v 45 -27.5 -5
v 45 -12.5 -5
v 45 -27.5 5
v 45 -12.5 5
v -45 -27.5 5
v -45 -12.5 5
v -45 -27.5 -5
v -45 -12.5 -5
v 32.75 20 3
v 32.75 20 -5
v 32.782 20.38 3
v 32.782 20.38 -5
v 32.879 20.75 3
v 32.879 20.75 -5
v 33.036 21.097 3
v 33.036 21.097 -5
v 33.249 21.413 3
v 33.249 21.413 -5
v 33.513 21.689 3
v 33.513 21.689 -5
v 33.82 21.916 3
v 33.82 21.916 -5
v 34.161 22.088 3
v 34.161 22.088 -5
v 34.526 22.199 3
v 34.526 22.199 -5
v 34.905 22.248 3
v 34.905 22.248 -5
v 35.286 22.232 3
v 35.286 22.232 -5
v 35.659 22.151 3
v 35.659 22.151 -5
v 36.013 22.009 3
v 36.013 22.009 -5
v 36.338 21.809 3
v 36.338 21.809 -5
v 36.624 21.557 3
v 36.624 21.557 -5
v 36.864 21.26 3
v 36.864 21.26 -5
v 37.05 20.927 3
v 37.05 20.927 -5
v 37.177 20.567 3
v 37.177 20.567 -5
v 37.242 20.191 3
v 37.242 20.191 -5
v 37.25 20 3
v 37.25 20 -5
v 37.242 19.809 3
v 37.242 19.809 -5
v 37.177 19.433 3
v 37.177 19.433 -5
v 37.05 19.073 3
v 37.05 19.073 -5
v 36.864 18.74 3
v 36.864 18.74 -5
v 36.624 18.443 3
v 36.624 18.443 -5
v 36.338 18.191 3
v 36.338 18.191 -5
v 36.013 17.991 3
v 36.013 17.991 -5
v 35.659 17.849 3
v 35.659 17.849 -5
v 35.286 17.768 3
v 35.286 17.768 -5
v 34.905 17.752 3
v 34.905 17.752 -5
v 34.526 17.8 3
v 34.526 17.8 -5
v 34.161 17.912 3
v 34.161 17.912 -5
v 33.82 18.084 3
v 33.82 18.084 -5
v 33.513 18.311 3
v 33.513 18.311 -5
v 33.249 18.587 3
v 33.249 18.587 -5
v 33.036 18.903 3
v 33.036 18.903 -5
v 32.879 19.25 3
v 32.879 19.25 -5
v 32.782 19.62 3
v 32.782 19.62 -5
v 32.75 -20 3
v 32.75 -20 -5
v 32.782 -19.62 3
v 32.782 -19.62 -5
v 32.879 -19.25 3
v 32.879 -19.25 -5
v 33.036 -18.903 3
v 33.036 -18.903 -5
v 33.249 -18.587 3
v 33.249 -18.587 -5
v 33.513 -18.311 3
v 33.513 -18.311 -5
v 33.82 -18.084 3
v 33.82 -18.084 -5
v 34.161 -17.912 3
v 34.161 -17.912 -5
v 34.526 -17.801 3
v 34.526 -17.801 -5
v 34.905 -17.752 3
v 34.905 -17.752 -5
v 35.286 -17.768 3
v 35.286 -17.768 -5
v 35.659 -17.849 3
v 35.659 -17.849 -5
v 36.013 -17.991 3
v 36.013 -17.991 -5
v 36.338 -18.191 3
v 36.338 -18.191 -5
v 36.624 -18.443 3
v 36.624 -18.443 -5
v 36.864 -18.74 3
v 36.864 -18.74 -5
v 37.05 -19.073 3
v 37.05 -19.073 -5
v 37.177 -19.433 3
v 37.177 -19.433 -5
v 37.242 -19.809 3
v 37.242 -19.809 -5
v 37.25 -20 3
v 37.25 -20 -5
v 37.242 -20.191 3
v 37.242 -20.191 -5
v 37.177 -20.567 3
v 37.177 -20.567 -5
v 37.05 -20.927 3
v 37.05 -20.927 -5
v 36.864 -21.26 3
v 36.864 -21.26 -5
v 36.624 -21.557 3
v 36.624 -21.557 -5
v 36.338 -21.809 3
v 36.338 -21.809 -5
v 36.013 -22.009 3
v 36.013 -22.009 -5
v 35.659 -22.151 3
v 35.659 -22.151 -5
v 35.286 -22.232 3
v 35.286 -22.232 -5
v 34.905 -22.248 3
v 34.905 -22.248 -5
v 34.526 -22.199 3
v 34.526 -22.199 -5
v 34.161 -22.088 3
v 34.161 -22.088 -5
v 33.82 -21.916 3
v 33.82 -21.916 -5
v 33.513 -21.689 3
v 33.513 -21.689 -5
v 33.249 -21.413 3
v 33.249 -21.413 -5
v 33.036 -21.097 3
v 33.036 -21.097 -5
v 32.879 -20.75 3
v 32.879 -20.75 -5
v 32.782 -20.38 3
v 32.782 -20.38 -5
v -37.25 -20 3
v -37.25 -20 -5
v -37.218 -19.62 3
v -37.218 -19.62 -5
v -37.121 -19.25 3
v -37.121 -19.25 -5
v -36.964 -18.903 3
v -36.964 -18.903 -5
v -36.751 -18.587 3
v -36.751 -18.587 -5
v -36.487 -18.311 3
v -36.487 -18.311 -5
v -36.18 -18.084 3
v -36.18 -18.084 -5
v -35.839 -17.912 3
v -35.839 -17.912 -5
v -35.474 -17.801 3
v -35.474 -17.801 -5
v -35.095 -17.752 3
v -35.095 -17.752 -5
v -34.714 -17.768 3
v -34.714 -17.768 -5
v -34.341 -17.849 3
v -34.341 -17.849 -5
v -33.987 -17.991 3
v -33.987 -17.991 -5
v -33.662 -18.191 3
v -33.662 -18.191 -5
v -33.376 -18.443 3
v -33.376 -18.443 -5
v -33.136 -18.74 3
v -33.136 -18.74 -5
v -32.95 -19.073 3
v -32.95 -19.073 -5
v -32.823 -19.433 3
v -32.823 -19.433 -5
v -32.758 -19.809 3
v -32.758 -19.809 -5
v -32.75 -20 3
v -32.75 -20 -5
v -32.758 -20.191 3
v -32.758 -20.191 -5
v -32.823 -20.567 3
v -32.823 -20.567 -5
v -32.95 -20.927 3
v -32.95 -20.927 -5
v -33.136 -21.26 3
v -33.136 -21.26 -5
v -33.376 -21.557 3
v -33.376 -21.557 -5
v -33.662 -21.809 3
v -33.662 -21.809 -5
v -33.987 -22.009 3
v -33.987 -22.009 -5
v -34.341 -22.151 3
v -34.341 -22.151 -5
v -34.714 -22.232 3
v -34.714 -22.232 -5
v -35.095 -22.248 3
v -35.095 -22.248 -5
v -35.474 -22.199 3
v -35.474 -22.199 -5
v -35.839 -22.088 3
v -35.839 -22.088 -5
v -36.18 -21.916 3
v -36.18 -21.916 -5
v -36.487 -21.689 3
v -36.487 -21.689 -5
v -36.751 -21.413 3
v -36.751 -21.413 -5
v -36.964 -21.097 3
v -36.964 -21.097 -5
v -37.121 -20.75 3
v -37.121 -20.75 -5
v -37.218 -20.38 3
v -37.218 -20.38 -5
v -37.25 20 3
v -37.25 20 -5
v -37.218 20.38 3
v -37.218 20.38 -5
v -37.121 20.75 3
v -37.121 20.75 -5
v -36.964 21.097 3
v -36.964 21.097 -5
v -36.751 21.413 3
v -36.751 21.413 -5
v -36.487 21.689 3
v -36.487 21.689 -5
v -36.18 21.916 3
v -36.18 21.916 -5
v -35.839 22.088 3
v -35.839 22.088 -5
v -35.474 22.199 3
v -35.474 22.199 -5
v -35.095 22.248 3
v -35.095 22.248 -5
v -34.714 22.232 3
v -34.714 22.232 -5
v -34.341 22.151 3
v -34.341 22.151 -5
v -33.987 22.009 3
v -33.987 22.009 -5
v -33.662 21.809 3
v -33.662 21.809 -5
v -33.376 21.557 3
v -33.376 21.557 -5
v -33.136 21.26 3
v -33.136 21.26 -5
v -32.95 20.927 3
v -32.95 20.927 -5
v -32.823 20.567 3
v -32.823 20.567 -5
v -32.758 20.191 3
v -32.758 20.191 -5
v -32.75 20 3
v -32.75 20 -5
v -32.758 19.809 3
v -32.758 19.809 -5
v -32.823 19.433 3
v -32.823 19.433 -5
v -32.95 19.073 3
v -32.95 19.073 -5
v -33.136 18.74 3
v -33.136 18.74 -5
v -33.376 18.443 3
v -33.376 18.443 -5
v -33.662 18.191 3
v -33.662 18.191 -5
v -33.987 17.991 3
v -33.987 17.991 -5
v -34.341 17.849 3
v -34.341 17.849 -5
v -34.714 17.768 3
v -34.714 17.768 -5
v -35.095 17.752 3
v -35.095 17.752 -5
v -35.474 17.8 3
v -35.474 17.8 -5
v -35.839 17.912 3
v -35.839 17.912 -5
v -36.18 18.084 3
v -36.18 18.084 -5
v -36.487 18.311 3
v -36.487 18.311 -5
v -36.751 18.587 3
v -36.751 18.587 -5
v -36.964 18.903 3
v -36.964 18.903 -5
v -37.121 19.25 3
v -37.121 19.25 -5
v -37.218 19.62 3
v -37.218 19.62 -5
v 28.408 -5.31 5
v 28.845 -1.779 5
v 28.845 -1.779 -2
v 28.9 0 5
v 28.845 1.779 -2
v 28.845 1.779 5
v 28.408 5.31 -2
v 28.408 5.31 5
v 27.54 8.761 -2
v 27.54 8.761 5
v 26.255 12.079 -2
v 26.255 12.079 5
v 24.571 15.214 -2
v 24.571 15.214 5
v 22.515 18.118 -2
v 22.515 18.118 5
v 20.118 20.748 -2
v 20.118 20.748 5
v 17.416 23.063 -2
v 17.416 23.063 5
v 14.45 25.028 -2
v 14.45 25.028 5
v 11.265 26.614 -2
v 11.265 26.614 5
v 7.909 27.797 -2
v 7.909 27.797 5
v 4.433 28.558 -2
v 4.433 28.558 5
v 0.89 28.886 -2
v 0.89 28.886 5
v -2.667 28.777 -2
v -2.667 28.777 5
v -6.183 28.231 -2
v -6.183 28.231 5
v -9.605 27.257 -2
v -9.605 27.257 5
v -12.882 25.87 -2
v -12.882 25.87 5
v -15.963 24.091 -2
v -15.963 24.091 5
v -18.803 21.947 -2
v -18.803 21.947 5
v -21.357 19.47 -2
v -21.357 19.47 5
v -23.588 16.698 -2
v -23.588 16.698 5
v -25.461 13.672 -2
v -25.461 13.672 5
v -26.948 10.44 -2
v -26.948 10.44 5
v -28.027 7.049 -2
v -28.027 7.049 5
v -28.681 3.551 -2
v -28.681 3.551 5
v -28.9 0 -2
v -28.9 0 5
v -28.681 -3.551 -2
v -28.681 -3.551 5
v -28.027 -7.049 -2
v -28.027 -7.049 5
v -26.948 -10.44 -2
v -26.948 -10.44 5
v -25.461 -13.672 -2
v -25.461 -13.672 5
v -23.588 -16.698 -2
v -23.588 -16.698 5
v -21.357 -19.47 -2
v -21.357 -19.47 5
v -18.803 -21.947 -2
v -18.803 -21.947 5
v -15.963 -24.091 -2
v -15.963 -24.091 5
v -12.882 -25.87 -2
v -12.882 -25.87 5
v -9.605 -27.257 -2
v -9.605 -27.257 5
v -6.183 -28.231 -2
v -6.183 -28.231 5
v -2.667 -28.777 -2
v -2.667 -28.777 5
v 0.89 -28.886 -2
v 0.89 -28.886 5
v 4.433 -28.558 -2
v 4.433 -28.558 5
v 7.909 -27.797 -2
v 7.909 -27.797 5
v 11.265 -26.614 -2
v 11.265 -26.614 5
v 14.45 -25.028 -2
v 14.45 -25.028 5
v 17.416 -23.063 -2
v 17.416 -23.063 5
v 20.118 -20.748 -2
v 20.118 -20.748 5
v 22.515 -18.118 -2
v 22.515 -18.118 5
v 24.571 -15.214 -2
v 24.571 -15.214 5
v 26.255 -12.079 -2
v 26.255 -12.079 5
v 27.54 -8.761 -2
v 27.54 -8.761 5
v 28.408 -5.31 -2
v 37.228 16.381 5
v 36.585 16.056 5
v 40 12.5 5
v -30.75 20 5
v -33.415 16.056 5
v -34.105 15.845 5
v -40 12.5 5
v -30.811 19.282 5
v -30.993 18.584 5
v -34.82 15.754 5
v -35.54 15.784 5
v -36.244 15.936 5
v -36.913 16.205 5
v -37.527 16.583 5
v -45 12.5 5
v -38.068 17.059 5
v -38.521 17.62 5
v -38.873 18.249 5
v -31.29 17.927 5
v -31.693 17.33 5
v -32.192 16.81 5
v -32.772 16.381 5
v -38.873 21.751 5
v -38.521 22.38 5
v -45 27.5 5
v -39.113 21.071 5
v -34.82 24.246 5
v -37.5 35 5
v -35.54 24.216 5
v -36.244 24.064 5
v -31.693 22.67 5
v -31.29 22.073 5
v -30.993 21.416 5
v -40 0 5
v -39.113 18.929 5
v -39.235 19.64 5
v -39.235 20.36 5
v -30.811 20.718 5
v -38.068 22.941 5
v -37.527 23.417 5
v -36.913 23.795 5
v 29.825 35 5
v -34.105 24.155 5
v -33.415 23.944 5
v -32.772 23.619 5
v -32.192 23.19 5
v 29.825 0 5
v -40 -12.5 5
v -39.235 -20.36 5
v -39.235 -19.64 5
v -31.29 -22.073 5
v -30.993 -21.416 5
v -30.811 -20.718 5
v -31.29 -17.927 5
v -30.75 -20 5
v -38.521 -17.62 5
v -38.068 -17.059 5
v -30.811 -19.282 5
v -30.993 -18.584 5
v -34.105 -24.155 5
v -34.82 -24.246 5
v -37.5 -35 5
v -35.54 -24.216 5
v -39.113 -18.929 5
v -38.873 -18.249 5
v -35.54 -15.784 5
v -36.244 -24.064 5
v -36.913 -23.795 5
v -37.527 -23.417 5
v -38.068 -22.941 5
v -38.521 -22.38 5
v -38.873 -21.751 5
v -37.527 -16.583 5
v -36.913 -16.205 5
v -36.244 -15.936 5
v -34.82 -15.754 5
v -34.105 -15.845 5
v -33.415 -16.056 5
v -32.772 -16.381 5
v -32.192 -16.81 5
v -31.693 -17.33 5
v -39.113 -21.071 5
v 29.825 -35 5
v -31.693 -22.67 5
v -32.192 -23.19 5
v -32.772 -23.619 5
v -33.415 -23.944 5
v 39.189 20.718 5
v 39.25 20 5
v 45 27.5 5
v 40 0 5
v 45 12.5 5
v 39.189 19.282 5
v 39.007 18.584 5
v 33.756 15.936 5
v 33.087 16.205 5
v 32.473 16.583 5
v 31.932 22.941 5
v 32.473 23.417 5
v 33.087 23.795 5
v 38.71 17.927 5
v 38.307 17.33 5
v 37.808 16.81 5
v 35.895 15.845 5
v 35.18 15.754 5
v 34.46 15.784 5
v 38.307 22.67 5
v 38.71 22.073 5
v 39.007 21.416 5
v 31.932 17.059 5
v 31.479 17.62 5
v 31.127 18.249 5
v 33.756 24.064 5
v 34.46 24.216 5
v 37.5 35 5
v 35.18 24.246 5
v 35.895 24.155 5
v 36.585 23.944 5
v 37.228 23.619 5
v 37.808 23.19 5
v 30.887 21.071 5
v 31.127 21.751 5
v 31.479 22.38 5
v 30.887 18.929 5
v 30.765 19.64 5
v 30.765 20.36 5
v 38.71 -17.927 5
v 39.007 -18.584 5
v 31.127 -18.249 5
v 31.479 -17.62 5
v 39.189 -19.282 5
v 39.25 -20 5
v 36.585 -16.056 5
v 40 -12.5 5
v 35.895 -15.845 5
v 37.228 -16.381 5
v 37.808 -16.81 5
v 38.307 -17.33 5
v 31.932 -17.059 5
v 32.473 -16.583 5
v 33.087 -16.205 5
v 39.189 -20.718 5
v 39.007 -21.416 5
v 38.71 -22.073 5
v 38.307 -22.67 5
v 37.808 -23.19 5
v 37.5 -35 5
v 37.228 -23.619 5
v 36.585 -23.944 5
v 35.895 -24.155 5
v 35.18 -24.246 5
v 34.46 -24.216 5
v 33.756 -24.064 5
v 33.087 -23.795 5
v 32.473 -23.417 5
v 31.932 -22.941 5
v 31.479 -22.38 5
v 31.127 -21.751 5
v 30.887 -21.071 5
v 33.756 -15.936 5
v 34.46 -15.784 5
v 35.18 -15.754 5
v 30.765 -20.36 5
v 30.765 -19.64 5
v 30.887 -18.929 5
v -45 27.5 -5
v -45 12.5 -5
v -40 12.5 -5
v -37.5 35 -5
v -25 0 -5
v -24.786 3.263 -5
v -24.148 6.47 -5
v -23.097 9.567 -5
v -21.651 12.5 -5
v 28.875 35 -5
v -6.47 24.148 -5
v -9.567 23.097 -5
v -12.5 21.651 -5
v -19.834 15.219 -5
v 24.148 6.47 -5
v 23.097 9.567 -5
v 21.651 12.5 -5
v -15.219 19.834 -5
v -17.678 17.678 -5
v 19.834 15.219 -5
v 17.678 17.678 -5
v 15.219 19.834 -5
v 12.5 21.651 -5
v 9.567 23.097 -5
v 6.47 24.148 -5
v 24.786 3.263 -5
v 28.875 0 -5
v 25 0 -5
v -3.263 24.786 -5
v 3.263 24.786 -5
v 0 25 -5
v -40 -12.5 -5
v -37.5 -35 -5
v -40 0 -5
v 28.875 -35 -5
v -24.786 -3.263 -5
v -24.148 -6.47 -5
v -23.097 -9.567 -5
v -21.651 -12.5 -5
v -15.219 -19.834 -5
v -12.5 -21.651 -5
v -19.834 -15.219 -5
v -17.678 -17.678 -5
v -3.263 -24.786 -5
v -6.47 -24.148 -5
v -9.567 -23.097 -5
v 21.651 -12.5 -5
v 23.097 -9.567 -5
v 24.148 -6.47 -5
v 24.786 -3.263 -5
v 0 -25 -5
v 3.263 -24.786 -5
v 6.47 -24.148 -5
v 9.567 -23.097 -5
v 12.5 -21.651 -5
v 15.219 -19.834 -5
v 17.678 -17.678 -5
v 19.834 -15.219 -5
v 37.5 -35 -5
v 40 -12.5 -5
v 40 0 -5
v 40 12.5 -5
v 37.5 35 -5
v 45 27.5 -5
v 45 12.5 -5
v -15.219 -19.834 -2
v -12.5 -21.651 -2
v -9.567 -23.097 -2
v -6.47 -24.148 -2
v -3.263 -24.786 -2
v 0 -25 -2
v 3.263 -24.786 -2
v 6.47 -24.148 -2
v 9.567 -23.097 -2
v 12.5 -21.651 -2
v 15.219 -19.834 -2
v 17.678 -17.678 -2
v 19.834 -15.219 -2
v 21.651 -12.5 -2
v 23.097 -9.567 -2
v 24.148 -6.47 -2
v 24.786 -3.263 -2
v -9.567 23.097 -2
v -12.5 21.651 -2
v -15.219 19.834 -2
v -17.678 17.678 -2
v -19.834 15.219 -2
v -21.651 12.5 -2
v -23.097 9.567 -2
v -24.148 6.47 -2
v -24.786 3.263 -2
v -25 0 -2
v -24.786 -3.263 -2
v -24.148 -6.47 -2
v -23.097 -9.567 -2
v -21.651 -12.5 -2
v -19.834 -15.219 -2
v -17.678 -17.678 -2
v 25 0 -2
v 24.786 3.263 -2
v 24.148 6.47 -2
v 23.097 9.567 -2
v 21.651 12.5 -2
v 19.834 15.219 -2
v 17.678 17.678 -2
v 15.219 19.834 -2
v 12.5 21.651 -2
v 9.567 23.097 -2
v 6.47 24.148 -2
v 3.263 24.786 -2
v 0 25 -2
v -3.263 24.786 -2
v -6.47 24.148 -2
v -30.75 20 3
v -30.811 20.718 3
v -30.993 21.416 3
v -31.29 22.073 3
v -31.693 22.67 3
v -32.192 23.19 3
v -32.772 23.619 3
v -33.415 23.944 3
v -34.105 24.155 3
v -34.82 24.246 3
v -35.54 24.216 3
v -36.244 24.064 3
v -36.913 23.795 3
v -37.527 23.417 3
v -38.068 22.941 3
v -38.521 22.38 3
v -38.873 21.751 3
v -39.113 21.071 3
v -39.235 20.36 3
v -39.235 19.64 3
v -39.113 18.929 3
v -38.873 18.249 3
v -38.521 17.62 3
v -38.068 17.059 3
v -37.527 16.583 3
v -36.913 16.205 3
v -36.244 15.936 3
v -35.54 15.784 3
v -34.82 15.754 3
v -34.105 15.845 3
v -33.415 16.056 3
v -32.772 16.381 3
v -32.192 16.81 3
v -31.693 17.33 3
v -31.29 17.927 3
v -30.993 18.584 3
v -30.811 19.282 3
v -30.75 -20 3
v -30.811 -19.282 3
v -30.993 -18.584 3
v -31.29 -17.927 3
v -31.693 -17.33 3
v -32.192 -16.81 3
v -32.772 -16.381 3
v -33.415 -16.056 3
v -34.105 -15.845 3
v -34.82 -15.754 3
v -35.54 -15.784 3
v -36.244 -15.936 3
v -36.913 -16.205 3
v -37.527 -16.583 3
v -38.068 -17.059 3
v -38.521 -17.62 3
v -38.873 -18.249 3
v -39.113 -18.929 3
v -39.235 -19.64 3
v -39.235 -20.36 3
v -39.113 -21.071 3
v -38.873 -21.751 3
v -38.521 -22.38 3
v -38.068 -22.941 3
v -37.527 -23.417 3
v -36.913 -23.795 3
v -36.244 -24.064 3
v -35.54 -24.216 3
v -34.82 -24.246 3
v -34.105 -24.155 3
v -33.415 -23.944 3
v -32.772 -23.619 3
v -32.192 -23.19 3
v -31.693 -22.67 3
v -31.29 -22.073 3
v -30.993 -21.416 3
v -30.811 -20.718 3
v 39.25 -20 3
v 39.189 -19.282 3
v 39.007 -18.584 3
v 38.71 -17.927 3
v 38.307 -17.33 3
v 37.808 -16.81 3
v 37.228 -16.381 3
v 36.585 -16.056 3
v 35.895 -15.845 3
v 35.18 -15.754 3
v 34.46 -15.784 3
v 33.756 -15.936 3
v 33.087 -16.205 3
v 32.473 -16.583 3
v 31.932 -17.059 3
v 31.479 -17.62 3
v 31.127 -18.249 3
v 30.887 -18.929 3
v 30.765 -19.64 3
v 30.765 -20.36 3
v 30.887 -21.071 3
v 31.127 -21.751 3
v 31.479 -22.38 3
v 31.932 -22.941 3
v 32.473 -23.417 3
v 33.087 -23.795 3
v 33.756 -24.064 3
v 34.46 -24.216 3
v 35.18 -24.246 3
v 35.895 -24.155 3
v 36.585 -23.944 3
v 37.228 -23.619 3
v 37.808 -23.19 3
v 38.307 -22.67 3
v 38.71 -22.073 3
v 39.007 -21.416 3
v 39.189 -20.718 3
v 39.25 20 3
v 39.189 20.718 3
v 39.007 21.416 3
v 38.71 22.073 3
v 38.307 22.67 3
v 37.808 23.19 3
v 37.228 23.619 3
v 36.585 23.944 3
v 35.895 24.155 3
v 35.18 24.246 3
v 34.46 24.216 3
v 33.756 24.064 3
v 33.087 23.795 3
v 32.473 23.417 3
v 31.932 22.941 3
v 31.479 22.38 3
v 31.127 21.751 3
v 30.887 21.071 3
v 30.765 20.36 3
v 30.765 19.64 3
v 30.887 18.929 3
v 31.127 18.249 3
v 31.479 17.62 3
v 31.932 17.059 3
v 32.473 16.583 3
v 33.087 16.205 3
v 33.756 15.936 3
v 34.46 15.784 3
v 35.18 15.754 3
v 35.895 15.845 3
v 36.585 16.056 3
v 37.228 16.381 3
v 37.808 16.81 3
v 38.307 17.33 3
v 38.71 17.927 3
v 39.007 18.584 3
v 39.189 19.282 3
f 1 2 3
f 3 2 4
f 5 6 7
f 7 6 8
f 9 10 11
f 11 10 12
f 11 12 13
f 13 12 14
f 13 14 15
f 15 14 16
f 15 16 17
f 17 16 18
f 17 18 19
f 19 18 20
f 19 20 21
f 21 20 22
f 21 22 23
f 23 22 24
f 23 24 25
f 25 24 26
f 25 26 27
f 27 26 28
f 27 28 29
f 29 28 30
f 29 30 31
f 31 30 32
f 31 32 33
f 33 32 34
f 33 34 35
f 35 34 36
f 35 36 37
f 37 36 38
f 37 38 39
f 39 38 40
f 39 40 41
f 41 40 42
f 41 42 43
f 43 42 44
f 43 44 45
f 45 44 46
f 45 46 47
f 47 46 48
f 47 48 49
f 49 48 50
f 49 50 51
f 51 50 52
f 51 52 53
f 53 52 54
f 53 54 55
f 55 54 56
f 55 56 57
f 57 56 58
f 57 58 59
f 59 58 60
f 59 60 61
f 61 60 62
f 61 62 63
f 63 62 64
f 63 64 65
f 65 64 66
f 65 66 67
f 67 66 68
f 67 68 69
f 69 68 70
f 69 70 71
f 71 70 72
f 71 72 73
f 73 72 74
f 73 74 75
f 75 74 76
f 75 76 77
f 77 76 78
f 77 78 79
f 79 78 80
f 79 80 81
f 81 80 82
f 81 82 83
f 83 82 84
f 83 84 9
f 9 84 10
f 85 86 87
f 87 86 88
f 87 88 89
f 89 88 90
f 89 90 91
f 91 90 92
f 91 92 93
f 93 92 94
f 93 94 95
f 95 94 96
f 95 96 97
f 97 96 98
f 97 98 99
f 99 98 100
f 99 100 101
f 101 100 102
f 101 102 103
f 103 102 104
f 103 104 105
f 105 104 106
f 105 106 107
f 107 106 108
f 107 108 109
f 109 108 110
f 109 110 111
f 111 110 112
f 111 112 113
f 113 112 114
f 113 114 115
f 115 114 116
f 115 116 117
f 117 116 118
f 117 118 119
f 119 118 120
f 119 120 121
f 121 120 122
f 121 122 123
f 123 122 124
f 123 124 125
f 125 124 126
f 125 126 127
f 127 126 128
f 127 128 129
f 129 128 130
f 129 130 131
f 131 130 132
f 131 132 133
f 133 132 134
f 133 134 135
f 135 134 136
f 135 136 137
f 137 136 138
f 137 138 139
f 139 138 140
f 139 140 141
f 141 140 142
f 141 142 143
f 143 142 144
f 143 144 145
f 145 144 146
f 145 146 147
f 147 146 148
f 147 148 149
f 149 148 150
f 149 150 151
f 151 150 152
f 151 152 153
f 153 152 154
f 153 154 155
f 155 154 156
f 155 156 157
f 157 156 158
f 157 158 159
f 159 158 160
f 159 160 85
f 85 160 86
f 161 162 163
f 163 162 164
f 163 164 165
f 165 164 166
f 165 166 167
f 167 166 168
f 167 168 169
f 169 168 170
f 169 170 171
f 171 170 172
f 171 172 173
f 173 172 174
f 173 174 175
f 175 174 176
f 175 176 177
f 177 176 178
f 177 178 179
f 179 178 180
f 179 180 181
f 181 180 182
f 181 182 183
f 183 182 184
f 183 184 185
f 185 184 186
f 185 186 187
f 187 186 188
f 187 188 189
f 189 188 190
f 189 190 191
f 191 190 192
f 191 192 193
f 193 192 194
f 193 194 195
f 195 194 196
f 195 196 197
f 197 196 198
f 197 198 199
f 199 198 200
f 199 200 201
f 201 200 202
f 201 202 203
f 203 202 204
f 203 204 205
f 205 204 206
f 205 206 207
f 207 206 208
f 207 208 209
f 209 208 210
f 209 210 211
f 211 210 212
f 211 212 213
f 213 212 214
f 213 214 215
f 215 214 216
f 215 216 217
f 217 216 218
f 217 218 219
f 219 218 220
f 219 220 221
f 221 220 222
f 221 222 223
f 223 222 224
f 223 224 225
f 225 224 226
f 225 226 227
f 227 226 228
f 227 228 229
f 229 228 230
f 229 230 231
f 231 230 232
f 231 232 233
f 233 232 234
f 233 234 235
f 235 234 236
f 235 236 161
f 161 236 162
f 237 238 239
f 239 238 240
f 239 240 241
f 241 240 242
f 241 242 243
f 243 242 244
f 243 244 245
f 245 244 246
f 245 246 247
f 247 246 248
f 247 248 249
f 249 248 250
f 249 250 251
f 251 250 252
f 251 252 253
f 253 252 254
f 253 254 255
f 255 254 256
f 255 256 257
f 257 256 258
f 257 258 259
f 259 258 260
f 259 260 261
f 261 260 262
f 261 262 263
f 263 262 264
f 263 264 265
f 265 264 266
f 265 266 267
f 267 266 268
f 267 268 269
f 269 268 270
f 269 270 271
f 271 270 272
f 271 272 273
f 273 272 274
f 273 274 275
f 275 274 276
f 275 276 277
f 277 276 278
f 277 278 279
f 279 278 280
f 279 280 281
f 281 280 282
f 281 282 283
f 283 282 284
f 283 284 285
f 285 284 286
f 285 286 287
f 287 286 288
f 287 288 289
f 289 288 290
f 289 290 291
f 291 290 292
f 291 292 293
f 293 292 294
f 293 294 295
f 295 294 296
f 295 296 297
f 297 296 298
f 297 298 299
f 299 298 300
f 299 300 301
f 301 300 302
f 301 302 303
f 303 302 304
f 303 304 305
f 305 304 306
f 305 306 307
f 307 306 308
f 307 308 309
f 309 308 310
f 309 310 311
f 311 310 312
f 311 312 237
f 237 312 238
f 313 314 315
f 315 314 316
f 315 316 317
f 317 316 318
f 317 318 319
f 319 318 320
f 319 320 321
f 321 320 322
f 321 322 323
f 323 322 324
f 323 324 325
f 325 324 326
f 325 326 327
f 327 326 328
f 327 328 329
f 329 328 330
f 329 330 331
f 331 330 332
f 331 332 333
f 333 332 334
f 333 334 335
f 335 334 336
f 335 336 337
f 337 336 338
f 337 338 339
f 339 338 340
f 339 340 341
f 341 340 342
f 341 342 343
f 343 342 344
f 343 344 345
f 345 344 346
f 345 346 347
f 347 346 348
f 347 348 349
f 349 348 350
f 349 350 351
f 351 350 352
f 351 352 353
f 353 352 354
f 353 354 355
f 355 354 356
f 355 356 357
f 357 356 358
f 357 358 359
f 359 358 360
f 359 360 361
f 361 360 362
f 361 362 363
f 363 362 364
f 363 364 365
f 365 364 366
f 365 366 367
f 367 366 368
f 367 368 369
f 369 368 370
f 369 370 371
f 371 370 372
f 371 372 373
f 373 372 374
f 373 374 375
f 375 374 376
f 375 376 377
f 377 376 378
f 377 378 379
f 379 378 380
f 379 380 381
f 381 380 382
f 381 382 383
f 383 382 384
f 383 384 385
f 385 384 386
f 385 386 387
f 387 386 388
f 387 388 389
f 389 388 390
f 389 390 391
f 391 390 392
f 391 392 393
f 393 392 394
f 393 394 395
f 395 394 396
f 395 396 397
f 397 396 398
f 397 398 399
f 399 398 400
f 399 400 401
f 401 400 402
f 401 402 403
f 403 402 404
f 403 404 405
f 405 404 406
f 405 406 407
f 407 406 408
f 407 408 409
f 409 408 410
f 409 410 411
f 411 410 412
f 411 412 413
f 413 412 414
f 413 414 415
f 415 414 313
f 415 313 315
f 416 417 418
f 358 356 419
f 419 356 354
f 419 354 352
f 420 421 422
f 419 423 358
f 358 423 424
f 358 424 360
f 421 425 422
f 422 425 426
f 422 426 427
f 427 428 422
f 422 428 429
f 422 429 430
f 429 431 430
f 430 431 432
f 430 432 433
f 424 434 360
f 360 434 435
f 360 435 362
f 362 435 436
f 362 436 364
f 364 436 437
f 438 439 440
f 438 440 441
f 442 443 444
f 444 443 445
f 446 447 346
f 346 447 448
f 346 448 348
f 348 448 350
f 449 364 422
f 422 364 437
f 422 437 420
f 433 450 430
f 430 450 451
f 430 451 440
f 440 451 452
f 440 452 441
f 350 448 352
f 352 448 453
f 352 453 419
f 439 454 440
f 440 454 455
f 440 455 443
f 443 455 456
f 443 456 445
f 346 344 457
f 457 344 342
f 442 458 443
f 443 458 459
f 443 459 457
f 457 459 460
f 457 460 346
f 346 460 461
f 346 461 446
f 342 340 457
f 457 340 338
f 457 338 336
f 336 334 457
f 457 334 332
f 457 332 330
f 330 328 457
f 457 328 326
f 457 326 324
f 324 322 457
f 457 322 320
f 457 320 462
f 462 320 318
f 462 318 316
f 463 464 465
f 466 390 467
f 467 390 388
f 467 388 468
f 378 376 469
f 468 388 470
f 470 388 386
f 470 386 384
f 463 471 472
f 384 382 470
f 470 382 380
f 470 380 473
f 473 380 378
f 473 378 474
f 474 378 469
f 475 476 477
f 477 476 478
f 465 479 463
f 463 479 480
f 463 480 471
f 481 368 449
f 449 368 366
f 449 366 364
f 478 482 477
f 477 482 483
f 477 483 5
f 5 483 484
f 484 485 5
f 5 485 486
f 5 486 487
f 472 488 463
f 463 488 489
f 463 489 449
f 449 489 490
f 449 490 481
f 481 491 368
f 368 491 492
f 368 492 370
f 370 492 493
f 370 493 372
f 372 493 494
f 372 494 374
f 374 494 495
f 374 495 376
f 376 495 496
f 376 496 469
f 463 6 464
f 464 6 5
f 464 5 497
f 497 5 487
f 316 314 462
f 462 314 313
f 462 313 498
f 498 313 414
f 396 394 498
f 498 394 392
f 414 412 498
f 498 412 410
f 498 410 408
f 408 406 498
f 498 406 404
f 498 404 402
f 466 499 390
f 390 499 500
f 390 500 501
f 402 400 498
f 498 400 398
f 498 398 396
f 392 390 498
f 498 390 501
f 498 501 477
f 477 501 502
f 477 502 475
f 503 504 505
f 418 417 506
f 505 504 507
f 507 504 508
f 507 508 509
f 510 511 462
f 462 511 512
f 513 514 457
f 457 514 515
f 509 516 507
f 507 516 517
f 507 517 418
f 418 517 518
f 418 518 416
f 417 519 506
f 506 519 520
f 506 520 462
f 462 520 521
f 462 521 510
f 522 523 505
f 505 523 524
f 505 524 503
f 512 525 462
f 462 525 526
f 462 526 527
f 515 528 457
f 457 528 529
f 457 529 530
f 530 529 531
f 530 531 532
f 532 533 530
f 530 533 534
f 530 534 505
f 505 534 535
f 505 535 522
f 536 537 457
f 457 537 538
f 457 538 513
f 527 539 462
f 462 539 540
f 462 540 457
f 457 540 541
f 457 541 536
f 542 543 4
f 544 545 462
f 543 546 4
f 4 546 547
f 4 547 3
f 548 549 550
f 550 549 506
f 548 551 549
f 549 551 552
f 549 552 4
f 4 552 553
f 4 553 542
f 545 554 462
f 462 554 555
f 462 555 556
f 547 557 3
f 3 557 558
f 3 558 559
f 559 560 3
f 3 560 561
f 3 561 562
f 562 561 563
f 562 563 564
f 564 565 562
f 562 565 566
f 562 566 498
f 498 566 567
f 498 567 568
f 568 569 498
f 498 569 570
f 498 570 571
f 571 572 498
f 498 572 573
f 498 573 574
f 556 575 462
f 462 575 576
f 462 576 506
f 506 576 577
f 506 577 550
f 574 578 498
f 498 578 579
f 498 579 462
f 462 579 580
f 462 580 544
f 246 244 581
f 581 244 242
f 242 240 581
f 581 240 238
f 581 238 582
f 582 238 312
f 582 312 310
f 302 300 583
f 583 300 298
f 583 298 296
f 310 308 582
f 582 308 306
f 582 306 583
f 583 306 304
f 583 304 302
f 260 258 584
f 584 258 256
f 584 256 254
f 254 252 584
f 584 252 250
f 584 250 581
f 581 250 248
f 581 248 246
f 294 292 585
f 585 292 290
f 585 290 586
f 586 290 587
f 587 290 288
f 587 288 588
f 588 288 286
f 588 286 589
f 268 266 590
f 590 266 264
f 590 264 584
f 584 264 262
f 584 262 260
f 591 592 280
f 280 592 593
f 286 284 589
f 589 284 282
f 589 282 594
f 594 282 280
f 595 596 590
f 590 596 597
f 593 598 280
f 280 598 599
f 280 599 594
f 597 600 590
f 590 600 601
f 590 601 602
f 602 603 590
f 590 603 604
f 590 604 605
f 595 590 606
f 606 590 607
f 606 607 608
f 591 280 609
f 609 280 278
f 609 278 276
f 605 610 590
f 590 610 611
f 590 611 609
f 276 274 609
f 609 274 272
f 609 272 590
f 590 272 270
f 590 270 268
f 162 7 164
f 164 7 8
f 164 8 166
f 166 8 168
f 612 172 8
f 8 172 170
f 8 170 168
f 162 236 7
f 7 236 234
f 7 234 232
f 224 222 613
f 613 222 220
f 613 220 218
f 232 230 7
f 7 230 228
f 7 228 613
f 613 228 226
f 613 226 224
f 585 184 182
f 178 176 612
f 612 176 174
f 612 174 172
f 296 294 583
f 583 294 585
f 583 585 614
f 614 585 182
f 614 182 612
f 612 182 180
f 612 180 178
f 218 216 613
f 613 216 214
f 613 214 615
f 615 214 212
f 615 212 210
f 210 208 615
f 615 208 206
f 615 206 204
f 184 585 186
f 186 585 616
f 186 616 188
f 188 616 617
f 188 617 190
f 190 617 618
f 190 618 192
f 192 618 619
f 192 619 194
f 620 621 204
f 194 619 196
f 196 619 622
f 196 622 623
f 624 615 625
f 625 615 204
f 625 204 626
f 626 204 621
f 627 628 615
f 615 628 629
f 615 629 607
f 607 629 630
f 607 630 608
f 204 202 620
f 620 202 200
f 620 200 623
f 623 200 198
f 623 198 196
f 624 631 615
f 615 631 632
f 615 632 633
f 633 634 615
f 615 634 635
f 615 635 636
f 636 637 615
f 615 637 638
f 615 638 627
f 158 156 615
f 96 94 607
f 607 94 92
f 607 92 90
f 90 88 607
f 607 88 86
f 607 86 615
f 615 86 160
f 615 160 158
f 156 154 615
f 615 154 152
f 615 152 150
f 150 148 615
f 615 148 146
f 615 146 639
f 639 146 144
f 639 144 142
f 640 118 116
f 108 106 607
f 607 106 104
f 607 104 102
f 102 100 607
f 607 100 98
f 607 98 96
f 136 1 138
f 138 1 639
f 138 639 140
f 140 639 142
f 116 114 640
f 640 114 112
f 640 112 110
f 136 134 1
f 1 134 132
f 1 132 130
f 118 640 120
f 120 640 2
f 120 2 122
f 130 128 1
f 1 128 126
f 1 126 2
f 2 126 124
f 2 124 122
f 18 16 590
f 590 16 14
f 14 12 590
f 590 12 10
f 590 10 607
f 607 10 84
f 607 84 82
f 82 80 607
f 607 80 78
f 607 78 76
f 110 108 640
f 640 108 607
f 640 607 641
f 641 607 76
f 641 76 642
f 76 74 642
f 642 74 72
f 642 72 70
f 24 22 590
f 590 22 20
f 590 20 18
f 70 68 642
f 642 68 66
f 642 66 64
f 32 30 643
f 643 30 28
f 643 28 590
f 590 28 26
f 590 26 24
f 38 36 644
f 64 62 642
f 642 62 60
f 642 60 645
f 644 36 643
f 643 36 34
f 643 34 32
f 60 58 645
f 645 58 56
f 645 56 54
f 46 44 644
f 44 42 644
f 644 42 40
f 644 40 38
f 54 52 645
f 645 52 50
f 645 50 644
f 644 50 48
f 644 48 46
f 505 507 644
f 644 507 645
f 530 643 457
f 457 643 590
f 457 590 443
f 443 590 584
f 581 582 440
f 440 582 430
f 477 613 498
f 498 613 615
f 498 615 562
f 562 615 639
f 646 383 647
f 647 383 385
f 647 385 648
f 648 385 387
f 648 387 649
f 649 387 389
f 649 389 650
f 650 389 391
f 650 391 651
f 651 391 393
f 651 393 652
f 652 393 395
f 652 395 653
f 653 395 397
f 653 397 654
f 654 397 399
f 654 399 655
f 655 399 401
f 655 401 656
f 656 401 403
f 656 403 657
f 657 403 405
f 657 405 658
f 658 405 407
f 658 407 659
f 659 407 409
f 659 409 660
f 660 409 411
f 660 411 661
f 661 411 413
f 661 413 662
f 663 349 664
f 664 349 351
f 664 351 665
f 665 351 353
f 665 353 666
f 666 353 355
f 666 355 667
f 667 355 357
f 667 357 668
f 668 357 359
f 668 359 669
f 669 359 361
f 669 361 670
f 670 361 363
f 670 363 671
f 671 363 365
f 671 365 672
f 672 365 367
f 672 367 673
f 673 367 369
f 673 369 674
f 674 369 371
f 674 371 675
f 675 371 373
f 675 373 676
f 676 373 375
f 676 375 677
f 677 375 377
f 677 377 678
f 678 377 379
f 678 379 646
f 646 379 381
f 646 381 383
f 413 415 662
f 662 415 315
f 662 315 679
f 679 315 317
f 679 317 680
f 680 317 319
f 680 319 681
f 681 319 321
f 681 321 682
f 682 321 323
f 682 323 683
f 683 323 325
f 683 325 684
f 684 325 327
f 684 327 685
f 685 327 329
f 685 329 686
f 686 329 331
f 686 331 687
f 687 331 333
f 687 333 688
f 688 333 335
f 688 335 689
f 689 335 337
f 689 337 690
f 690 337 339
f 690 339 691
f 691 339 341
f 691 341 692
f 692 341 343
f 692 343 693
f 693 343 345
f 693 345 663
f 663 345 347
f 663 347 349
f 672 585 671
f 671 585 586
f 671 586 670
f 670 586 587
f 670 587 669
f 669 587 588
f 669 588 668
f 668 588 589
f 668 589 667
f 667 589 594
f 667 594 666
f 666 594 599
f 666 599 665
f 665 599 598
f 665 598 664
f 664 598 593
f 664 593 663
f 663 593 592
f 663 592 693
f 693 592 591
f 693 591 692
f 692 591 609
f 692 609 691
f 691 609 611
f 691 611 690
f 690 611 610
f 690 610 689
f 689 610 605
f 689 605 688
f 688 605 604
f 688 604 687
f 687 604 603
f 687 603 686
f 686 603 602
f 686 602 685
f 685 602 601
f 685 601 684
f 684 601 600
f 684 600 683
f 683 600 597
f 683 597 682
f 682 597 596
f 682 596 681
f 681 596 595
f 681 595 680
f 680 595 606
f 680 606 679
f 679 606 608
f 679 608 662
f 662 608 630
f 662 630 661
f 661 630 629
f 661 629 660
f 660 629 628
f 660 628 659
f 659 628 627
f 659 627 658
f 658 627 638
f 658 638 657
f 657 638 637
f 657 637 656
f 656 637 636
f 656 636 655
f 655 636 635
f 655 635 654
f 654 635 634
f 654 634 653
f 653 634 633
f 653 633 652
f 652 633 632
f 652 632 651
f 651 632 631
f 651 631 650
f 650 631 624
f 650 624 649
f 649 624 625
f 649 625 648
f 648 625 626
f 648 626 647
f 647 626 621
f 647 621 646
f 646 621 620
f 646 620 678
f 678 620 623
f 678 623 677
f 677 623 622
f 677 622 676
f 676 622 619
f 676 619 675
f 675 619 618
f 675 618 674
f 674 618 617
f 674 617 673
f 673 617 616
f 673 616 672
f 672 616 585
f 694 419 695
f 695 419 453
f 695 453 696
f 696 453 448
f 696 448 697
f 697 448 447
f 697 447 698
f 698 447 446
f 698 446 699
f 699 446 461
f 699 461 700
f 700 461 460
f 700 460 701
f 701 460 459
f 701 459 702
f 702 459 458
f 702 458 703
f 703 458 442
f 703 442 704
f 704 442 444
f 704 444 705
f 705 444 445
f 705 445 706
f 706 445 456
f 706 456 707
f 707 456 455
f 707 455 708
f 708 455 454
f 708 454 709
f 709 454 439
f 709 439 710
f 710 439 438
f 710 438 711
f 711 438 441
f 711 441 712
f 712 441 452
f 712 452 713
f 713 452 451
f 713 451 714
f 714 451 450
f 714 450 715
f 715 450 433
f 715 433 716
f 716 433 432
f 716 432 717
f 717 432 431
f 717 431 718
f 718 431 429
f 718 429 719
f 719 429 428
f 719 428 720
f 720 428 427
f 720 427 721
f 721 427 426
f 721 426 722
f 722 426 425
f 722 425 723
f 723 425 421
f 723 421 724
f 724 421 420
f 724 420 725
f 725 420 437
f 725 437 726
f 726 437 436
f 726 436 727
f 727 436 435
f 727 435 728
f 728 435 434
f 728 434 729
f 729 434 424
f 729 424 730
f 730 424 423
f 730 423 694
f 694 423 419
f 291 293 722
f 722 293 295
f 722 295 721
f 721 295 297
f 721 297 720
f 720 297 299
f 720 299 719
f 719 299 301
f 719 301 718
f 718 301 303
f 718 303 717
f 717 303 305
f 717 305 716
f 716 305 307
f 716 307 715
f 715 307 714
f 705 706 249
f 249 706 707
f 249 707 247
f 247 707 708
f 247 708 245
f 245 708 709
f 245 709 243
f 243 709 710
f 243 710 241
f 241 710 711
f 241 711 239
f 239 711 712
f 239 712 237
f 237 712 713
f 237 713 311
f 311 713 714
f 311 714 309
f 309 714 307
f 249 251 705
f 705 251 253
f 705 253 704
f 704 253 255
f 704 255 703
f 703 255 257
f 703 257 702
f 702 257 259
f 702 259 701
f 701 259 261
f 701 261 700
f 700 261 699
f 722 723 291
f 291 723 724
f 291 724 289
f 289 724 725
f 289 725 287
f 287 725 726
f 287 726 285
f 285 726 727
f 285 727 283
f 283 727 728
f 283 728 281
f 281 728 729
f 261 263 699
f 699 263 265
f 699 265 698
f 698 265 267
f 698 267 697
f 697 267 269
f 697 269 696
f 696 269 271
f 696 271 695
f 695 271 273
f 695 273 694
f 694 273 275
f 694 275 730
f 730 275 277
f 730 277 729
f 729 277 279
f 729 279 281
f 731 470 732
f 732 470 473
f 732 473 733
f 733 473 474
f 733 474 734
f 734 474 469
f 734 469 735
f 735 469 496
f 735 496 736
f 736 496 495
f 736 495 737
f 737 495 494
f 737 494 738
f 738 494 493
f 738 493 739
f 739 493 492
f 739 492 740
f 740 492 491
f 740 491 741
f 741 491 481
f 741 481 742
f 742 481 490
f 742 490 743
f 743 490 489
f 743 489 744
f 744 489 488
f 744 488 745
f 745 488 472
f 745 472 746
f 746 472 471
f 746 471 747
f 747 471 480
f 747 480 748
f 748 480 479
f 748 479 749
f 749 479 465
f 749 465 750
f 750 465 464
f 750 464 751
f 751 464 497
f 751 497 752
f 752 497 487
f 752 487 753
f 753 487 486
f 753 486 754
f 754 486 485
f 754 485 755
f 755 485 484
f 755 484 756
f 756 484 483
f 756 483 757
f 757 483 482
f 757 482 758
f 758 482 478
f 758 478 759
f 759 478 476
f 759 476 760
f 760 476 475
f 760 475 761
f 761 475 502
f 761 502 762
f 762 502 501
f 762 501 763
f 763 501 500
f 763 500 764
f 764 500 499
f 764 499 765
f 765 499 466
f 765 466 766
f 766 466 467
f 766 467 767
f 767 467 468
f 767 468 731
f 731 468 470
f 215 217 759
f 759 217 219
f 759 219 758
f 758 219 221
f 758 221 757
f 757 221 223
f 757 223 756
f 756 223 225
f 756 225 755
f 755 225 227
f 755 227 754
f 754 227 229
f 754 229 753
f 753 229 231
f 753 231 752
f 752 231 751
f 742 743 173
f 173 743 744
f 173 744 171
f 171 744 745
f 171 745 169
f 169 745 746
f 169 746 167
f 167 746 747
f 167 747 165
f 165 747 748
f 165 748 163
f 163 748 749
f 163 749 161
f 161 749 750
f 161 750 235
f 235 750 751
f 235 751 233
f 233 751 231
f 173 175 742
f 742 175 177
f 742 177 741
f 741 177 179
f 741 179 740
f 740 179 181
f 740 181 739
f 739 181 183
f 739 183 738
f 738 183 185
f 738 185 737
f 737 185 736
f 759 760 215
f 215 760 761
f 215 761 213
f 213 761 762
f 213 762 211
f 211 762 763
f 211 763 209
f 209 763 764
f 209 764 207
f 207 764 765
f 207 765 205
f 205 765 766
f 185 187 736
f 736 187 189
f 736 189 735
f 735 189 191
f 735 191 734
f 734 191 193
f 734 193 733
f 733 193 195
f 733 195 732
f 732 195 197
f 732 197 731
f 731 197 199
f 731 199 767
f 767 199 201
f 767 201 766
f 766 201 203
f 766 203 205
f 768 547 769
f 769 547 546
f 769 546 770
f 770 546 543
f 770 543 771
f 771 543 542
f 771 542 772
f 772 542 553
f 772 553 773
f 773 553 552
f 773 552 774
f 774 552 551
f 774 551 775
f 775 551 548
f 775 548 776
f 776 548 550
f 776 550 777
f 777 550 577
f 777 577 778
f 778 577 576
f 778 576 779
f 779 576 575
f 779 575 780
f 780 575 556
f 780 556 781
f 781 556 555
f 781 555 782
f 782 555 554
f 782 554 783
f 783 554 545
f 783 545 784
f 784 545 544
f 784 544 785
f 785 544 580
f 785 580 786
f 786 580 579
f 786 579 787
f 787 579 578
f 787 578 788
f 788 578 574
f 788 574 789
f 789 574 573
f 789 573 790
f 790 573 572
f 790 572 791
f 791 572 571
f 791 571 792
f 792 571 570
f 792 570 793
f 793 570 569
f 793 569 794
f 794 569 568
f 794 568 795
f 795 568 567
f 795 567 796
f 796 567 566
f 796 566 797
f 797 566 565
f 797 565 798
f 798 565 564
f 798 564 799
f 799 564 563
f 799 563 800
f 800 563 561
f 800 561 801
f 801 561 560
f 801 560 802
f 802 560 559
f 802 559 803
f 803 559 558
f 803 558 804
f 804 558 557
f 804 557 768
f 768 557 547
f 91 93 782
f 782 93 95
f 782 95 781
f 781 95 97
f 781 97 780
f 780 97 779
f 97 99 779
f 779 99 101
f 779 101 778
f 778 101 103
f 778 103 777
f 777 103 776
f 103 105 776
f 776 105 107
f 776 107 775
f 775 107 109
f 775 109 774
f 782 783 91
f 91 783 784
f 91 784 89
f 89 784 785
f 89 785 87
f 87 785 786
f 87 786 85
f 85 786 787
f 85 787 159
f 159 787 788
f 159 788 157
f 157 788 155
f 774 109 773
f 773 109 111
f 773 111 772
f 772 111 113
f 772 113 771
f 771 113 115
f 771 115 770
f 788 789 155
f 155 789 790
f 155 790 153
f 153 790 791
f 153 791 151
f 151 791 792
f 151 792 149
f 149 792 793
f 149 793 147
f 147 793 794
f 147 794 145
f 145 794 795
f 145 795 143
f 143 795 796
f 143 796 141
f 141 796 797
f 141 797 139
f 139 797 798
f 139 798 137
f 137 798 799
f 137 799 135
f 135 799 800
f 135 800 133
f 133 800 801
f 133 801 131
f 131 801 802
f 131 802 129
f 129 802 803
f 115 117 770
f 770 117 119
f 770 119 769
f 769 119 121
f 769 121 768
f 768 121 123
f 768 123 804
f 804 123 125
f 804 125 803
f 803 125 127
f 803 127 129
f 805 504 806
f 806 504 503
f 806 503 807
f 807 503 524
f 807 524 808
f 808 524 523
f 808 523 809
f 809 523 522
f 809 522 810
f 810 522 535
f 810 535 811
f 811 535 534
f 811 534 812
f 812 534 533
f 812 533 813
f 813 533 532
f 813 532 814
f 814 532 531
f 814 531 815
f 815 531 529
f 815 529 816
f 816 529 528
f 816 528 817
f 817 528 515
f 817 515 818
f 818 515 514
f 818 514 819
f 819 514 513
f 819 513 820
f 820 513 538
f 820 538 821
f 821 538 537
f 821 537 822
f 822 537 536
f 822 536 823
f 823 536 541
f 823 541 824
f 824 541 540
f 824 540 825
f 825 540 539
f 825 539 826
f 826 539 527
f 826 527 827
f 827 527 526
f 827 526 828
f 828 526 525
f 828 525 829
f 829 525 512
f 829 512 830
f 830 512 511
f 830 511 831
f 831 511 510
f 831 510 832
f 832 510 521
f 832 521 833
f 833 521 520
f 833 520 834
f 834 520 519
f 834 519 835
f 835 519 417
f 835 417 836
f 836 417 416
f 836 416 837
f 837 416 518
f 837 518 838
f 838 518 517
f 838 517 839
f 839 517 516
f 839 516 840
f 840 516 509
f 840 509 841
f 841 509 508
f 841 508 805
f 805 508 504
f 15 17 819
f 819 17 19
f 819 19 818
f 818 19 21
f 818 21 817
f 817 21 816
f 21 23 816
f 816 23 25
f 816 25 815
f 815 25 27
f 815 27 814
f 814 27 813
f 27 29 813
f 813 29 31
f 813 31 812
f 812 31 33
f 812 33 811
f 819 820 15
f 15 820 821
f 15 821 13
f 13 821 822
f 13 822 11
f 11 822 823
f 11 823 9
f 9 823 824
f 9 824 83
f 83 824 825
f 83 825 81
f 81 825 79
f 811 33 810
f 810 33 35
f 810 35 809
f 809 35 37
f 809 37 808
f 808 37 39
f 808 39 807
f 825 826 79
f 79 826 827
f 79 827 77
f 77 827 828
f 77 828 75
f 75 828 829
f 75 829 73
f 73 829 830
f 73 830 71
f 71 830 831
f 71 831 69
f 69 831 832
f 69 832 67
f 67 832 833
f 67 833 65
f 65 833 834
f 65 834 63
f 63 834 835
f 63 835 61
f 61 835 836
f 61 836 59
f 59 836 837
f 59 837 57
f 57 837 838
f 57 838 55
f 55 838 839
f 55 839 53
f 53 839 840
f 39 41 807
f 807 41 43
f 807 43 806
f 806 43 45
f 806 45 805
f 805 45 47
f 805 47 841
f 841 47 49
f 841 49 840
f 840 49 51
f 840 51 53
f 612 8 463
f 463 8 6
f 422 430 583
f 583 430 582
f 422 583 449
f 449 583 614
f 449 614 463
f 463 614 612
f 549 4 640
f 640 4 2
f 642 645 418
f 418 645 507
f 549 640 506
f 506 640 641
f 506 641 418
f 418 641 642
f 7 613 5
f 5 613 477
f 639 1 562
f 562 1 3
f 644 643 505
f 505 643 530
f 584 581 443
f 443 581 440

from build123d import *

# Parameters (mm, degrees)
CROQUIS1_W              = 90
CROQUIS1_H              = 70
CROQUIS1_R              = 28.9
CROQUIS1_R_2            = 2.25
SALIENTE_EXTRUIR1_DEPTH = 5
CROQUIS2_R              = 28.9
CROQUIS2_R_2            = 25
SALIENTE_EXTRUIR2_DEPTH = 3
CROQUIS3_R              = 4.25
CORTAR_EXTRUIR1_DEPTH   = 2
CROQUIS4_W              = 10
CROQUIS4_H              = 25
CORTAR_EXTRUIR2_DEPTH   = 58.879184514
CHAFL_N2_SIZE           = 7.5


with BuildPart() as part:
    # Croquis1 → Saliente-Extruir1 (new, symmetric)
    with BuildSketch(Plane.XY):
        Rectangle(CROQUIS1_W, CROQUIS1_H)
        Circle(CROQUIS1_R, mode=Mode.SUBTRACT)
        with Locations((35, 20)):
            Circle(CROQUIS1_R_2, mode=Mode.SUBTRACT)
        with Locations((35, -20)):
            Circle(CROQUIS1_R_2, mode=Mode.SUBTRACT)
        with Locations((-35, -20)):
            Circle(CROQUIS1_R_2, mode=Mode.SUBTRACT)
        with Locations((-35, 20)):
            Circle(CROQUIS1_R_2, mode=Mode.SUBTRACT)
    extrude(amount=SALIENTE_EXTRUIR1_DEPTH, both=True)

    # Croquis2 → Saliente-Extruir2 (add)
    with BuildSketch(Plane(origin=(0, 0, -5), x_dir=(-1, 0, 0), z_dir=(0, 0, -1))):
        Circle(CROQUIS2_R)
        Circle(CROQUIS2_R_2, mode=Mode.SUBTRACT)
    extrude(amount=-SALIENTE_EXTRUIR2_DEPTH)

    # Croquis3 → Cortar-Extruir1 (cut)
    with BuildSketch(Plane.XY.offset(5)):
        with Locations((-35, 20)):
            Circle(CROQUIS3_R)
        with Locations((35, 20)):
            Circle(CROQUIS3_R)
        with Locations((35, -20)):
            Circle(CROQUIS3_R)
        with Locations((-35, -20)):
            Circle(CROQUIS3_R)
    extrude(amount=-CORTAR_EXTRUIR1_DEPTH, mode=Mode.SUBTRACT)

    # Croquis4 → Cortar-Extruir2 (cut, through all)
    with BuildSketch(Plane.XY.offset(5)):
        with Locations((-45, 0)):
            Rectangle(CROQUIS4_W, CROQUIS4_H)
        with Locations((45, 0)):
            Rectangle(CROQUIS4_W, CROQUIS4_H)
    extrude(amount=-CORTAR_EXTRUIR2_DEPTH, mode=Mode.SUBTRACT)

    # Chaflán2
    chafl_n2_edges = [part.edges().sort_by_distance(p)[0] for p in [
        (45, -35, 0),
        (-45, -35, 0),
        (-45, 35, 0),
        (45, 35, 0),
    ]]
    chamfer(chafl_n2_edges, length=CHAFL_N2_SIZE)


solid = part.part
